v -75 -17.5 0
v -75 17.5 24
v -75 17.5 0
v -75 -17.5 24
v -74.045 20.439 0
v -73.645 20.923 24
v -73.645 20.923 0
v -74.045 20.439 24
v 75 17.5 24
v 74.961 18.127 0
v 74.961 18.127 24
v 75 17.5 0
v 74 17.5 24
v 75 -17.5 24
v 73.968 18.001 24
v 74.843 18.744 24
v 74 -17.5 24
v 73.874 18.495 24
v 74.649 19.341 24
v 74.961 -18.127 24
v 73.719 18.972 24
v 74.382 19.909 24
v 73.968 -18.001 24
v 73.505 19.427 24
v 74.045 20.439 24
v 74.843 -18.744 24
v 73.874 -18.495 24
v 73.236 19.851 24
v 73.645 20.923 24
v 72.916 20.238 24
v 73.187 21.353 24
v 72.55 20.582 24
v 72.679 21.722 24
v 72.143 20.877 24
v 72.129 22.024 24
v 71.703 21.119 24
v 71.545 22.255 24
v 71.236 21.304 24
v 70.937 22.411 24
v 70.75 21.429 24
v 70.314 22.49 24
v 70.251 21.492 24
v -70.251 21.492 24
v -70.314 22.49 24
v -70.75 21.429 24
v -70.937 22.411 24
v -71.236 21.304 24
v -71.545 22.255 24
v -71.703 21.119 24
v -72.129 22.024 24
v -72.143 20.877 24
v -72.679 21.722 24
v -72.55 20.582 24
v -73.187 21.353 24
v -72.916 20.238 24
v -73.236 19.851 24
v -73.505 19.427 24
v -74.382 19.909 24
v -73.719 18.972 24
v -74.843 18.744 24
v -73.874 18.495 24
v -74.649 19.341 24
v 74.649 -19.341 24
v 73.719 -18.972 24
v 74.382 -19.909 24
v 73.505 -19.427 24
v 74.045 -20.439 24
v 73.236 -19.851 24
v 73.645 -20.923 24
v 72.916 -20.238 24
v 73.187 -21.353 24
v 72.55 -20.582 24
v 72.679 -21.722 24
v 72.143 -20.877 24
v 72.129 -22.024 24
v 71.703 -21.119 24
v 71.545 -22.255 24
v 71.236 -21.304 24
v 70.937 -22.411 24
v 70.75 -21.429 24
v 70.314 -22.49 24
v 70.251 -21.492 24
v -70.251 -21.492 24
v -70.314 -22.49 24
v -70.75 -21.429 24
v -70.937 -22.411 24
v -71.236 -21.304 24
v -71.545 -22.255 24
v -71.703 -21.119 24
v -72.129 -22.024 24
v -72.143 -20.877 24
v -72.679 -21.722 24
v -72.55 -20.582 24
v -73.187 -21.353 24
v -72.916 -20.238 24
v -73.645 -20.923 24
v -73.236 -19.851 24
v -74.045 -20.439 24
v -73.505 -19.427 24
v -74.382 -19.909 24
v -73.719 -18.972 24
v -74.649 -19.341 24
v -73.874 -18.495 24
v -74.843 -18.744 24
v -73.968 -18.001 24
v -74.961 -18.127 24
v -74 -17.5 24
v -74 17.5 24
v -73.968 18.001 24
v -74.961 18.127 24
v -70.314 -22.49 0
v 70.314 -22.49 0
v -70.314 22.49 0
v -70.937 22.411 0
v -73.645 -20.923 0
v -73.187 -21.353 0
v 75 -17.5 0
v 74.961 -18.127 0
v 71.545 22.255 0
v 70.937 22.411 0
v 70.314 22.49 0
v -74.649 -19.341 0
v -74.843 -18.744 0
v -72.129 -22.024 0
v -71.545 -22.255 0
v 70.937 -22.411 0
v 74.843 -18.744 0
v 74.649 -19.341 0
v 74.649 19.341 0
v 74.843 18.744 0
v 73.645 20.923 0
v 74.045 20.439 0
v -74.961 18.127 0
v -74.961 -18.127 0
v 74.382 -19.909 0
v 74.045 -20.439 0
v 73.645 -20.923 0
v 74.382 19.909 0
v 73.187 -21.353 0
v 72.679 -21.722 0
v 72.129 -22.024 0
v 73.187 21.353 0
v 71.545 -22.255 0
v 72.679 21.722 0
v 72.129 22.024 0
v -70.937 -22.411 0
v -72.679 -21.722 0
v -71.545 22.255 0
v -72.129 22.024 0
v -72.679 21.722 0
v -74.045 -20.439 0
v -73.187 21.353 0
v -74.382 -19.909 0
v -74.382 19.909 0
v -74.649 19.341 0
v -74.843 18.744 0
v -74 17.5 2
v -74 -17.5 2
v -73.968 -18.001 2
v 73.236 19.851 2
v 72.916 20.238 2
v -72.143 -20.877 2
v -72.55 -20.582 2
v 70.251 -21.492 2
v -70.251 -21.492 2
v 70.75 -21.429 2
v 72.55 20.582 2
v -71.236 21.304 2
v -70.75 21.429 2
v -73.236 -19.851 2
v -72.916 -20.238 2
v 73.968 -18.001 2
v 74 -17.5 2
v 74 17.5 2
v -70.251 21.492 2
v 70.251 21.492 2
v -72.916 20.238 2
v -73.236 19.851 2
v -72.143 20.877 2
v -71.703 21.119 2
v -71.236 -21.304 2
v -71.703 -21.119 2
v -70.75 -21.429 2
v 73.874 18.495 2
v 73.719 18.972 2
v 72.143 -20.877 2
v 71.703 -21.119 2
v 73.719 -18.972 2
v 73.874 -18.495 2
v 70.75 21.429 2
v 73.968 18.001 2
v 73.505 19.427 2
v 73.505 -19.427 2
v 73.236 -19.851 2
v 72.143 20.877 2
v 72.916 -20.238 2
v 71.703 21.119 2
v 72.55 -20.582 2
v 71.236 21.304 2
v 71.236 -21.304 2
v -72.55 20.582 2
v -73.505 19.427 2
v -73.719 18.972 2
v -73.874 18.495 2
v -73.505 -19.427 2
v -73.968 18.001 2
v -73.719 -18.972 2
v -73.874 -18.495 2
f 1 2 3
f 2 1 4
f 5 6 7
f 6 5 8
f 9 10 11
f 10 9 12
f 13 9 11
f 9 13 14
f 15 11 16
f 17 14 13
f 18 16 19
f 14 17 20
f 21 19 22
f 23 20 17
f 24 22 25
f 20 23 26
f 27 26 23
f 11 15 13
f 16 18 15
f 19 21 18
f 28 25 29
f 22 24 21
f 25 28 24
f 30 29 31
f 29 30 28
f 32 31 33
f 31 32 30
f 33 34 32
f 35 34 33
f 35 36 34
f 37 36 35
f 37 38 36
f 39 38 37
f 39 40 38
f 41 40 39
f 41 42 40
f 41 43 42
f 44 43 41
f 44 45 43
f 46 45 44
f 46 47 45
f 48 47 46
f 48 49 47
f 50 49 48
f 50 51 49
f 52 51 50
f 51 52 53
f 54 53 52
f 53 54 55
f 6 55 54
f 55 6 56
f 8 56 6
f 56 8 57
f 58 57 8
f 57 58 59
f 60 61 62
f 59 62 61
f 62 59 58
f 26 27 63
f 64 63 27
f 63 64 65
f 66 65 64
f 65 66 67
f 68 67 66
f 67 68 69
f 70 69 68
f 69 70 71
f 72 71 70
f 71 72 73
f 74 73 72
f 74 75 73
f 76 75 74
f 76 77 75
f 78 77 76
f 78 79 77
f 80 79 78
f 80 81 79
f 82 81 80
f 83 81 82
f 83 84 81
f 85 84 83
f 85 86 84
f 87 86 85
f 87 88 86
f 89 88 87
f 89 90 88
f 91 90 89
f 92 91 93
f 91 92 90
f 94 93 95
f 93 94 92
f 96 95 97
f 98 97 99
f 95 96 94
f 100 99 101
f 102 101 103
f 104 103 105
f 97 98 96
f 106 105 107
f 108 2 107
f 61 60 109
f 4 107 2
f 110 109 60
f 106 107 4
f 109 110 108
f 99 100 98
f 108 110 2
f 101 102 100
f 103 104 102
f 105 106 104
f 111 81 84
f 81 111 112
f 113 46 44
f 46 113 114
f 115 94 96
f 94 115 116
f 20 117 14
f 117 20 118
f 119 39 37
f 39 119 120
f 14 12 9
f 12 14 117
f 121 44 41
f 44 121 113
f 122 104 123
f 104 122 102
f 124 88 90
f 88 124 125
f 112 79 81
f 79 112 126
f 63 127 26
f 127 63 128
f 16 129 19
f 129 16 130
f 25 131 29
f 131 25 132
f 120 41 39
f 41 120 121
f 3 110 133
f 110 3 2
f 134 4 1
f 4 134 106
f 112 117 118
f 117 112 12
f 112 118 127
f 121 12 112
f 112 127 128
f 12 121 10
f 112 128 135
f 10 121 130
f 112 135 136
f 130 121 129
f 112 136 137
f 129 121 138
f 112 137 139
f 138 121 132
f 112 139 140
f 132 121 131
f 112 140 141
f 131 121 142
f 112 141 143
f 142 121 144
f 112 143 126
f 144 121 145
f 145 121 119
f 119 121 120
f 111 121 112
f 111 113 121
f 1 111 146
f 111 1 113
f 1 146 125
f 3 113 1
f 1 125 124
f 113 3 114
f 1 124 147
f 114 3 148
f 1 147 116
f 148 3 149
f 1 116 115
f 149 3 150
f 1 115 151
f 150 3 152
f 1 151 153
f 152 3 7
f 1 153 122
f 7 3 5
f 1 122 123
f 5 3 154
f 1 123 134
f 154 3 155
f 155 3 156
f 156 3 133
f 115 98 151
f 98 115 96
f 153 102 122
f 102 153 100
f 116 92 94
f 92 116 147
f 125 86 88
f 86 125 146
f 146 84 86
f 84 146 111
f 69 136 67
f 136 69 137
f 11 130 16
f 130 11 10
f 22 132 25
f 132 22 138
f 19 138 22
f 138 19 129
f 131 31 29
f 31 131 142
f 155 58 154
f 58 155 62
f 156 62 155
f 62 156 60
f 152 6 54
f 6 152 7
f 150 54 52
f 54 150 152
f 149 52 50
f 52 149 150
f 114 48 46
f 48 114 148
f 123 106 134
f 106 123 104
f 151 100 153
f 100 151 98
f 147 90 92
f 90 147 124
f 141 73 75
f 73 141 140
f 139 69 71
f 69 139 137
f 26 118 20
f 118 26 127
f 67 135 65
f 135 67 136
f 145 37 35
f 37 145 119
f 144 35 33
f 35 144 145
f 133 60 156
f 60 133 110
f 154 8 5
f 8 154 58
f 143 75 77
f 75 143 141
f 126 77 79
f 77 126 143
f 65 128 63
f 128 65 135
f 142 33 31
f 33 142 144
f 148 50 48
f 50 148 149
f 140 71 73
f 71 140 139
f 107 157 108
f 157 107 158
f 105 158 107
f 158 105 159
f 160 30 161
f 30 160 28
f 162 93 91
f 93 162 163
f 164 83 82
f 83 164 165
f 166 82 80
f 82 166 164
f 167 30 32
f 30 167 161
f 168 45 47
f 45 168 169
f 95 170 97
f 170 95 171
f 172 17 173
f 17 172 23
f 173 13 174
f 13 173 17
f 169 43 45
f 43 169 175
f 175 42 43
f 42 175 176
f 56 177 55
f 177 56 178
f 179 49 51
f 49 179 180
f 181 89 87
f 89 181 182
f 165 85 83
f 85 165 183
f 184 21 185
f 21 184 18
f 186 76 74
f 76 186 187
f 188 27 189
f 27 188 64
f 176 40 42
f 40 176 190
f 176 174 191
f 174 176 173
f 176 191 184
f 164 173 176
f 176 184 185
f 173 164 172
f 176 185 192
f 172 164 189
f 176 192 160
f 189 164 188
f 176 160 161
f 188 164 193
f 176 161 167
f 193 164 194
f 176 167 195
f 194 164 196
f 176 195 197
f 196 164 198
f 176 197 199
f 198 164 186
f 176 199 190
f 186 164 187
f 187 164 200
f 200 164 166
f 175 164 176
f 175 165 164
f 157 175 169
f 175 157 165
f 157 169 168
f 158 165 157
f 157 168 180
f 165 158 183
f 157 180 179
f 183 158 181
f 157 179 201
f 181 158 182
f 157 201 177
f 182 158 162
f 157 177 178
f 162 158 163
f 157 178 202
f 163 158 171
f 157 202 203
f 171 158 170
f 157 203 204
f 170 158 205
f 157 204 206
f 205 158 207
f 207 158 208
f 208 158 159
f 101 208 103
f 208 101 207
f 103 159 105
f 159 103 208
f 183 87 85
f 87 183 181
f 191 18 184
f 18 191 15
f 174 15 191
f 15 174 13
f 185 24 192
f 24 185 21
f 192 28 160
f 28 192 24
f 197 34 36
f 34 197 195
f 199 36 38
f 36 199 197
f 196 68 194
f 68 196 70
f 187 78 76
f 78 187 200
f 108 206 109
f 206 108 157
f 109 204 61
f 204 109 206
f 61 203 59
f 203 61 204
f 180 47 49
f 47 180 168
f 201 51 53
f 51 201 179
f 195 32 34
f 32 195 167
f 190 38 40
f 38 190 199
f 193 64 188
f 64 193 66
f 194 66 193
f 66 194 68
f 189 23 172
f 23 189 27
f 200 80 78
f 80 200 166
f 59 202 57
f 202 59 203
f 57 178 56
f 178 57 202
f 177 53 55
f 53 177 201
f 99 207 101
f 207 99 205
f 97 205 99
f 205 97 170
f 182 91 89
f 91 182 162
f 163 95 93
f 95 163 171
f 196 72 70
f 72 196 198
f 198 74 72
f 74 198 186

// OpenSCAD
$fn = 50;


difference() {
	union() {
		hull() {
			translate(v = [-70.0000000000, 17.5000000000, 0]) {
				cylinder(h = 24, r = 5);
			}
			translate(v = [70.0000000000, 17.5000000000, 0]) {
				cylinder(h = 24, r = 5);
			}
			translate(v = [-70.0000000000, -17.5000000000, 0]) {
				cylinder(h = 24, r = 5);
			}
			translate(v = [70.0000000000, -17.5000000000, 0]) {
				cylinder(h = 24, r = 5);
			}
		}
	}
	union() {
		translate(v = [0, 0, 2]) {
			hull() {
				translate(v = [-70.0000000000, 17.5000000000, 0]) {
					cylinder(h = 22, r = 4);
				}
				translate(v = [70.0000000000, 17.5000000000, 0]) {
					cylinder(h = 22, r = 4);
				}
				translate(v = [-70.0000000000, -17.5000000000, 0]) {
					cylinder(h = 22, r = 4);
				}
				translate(v = [70.0000000000, -17.5000000000, 0]) {
					cylinder(h = 22, r = 4);
				}
			}
		}
	}
}
